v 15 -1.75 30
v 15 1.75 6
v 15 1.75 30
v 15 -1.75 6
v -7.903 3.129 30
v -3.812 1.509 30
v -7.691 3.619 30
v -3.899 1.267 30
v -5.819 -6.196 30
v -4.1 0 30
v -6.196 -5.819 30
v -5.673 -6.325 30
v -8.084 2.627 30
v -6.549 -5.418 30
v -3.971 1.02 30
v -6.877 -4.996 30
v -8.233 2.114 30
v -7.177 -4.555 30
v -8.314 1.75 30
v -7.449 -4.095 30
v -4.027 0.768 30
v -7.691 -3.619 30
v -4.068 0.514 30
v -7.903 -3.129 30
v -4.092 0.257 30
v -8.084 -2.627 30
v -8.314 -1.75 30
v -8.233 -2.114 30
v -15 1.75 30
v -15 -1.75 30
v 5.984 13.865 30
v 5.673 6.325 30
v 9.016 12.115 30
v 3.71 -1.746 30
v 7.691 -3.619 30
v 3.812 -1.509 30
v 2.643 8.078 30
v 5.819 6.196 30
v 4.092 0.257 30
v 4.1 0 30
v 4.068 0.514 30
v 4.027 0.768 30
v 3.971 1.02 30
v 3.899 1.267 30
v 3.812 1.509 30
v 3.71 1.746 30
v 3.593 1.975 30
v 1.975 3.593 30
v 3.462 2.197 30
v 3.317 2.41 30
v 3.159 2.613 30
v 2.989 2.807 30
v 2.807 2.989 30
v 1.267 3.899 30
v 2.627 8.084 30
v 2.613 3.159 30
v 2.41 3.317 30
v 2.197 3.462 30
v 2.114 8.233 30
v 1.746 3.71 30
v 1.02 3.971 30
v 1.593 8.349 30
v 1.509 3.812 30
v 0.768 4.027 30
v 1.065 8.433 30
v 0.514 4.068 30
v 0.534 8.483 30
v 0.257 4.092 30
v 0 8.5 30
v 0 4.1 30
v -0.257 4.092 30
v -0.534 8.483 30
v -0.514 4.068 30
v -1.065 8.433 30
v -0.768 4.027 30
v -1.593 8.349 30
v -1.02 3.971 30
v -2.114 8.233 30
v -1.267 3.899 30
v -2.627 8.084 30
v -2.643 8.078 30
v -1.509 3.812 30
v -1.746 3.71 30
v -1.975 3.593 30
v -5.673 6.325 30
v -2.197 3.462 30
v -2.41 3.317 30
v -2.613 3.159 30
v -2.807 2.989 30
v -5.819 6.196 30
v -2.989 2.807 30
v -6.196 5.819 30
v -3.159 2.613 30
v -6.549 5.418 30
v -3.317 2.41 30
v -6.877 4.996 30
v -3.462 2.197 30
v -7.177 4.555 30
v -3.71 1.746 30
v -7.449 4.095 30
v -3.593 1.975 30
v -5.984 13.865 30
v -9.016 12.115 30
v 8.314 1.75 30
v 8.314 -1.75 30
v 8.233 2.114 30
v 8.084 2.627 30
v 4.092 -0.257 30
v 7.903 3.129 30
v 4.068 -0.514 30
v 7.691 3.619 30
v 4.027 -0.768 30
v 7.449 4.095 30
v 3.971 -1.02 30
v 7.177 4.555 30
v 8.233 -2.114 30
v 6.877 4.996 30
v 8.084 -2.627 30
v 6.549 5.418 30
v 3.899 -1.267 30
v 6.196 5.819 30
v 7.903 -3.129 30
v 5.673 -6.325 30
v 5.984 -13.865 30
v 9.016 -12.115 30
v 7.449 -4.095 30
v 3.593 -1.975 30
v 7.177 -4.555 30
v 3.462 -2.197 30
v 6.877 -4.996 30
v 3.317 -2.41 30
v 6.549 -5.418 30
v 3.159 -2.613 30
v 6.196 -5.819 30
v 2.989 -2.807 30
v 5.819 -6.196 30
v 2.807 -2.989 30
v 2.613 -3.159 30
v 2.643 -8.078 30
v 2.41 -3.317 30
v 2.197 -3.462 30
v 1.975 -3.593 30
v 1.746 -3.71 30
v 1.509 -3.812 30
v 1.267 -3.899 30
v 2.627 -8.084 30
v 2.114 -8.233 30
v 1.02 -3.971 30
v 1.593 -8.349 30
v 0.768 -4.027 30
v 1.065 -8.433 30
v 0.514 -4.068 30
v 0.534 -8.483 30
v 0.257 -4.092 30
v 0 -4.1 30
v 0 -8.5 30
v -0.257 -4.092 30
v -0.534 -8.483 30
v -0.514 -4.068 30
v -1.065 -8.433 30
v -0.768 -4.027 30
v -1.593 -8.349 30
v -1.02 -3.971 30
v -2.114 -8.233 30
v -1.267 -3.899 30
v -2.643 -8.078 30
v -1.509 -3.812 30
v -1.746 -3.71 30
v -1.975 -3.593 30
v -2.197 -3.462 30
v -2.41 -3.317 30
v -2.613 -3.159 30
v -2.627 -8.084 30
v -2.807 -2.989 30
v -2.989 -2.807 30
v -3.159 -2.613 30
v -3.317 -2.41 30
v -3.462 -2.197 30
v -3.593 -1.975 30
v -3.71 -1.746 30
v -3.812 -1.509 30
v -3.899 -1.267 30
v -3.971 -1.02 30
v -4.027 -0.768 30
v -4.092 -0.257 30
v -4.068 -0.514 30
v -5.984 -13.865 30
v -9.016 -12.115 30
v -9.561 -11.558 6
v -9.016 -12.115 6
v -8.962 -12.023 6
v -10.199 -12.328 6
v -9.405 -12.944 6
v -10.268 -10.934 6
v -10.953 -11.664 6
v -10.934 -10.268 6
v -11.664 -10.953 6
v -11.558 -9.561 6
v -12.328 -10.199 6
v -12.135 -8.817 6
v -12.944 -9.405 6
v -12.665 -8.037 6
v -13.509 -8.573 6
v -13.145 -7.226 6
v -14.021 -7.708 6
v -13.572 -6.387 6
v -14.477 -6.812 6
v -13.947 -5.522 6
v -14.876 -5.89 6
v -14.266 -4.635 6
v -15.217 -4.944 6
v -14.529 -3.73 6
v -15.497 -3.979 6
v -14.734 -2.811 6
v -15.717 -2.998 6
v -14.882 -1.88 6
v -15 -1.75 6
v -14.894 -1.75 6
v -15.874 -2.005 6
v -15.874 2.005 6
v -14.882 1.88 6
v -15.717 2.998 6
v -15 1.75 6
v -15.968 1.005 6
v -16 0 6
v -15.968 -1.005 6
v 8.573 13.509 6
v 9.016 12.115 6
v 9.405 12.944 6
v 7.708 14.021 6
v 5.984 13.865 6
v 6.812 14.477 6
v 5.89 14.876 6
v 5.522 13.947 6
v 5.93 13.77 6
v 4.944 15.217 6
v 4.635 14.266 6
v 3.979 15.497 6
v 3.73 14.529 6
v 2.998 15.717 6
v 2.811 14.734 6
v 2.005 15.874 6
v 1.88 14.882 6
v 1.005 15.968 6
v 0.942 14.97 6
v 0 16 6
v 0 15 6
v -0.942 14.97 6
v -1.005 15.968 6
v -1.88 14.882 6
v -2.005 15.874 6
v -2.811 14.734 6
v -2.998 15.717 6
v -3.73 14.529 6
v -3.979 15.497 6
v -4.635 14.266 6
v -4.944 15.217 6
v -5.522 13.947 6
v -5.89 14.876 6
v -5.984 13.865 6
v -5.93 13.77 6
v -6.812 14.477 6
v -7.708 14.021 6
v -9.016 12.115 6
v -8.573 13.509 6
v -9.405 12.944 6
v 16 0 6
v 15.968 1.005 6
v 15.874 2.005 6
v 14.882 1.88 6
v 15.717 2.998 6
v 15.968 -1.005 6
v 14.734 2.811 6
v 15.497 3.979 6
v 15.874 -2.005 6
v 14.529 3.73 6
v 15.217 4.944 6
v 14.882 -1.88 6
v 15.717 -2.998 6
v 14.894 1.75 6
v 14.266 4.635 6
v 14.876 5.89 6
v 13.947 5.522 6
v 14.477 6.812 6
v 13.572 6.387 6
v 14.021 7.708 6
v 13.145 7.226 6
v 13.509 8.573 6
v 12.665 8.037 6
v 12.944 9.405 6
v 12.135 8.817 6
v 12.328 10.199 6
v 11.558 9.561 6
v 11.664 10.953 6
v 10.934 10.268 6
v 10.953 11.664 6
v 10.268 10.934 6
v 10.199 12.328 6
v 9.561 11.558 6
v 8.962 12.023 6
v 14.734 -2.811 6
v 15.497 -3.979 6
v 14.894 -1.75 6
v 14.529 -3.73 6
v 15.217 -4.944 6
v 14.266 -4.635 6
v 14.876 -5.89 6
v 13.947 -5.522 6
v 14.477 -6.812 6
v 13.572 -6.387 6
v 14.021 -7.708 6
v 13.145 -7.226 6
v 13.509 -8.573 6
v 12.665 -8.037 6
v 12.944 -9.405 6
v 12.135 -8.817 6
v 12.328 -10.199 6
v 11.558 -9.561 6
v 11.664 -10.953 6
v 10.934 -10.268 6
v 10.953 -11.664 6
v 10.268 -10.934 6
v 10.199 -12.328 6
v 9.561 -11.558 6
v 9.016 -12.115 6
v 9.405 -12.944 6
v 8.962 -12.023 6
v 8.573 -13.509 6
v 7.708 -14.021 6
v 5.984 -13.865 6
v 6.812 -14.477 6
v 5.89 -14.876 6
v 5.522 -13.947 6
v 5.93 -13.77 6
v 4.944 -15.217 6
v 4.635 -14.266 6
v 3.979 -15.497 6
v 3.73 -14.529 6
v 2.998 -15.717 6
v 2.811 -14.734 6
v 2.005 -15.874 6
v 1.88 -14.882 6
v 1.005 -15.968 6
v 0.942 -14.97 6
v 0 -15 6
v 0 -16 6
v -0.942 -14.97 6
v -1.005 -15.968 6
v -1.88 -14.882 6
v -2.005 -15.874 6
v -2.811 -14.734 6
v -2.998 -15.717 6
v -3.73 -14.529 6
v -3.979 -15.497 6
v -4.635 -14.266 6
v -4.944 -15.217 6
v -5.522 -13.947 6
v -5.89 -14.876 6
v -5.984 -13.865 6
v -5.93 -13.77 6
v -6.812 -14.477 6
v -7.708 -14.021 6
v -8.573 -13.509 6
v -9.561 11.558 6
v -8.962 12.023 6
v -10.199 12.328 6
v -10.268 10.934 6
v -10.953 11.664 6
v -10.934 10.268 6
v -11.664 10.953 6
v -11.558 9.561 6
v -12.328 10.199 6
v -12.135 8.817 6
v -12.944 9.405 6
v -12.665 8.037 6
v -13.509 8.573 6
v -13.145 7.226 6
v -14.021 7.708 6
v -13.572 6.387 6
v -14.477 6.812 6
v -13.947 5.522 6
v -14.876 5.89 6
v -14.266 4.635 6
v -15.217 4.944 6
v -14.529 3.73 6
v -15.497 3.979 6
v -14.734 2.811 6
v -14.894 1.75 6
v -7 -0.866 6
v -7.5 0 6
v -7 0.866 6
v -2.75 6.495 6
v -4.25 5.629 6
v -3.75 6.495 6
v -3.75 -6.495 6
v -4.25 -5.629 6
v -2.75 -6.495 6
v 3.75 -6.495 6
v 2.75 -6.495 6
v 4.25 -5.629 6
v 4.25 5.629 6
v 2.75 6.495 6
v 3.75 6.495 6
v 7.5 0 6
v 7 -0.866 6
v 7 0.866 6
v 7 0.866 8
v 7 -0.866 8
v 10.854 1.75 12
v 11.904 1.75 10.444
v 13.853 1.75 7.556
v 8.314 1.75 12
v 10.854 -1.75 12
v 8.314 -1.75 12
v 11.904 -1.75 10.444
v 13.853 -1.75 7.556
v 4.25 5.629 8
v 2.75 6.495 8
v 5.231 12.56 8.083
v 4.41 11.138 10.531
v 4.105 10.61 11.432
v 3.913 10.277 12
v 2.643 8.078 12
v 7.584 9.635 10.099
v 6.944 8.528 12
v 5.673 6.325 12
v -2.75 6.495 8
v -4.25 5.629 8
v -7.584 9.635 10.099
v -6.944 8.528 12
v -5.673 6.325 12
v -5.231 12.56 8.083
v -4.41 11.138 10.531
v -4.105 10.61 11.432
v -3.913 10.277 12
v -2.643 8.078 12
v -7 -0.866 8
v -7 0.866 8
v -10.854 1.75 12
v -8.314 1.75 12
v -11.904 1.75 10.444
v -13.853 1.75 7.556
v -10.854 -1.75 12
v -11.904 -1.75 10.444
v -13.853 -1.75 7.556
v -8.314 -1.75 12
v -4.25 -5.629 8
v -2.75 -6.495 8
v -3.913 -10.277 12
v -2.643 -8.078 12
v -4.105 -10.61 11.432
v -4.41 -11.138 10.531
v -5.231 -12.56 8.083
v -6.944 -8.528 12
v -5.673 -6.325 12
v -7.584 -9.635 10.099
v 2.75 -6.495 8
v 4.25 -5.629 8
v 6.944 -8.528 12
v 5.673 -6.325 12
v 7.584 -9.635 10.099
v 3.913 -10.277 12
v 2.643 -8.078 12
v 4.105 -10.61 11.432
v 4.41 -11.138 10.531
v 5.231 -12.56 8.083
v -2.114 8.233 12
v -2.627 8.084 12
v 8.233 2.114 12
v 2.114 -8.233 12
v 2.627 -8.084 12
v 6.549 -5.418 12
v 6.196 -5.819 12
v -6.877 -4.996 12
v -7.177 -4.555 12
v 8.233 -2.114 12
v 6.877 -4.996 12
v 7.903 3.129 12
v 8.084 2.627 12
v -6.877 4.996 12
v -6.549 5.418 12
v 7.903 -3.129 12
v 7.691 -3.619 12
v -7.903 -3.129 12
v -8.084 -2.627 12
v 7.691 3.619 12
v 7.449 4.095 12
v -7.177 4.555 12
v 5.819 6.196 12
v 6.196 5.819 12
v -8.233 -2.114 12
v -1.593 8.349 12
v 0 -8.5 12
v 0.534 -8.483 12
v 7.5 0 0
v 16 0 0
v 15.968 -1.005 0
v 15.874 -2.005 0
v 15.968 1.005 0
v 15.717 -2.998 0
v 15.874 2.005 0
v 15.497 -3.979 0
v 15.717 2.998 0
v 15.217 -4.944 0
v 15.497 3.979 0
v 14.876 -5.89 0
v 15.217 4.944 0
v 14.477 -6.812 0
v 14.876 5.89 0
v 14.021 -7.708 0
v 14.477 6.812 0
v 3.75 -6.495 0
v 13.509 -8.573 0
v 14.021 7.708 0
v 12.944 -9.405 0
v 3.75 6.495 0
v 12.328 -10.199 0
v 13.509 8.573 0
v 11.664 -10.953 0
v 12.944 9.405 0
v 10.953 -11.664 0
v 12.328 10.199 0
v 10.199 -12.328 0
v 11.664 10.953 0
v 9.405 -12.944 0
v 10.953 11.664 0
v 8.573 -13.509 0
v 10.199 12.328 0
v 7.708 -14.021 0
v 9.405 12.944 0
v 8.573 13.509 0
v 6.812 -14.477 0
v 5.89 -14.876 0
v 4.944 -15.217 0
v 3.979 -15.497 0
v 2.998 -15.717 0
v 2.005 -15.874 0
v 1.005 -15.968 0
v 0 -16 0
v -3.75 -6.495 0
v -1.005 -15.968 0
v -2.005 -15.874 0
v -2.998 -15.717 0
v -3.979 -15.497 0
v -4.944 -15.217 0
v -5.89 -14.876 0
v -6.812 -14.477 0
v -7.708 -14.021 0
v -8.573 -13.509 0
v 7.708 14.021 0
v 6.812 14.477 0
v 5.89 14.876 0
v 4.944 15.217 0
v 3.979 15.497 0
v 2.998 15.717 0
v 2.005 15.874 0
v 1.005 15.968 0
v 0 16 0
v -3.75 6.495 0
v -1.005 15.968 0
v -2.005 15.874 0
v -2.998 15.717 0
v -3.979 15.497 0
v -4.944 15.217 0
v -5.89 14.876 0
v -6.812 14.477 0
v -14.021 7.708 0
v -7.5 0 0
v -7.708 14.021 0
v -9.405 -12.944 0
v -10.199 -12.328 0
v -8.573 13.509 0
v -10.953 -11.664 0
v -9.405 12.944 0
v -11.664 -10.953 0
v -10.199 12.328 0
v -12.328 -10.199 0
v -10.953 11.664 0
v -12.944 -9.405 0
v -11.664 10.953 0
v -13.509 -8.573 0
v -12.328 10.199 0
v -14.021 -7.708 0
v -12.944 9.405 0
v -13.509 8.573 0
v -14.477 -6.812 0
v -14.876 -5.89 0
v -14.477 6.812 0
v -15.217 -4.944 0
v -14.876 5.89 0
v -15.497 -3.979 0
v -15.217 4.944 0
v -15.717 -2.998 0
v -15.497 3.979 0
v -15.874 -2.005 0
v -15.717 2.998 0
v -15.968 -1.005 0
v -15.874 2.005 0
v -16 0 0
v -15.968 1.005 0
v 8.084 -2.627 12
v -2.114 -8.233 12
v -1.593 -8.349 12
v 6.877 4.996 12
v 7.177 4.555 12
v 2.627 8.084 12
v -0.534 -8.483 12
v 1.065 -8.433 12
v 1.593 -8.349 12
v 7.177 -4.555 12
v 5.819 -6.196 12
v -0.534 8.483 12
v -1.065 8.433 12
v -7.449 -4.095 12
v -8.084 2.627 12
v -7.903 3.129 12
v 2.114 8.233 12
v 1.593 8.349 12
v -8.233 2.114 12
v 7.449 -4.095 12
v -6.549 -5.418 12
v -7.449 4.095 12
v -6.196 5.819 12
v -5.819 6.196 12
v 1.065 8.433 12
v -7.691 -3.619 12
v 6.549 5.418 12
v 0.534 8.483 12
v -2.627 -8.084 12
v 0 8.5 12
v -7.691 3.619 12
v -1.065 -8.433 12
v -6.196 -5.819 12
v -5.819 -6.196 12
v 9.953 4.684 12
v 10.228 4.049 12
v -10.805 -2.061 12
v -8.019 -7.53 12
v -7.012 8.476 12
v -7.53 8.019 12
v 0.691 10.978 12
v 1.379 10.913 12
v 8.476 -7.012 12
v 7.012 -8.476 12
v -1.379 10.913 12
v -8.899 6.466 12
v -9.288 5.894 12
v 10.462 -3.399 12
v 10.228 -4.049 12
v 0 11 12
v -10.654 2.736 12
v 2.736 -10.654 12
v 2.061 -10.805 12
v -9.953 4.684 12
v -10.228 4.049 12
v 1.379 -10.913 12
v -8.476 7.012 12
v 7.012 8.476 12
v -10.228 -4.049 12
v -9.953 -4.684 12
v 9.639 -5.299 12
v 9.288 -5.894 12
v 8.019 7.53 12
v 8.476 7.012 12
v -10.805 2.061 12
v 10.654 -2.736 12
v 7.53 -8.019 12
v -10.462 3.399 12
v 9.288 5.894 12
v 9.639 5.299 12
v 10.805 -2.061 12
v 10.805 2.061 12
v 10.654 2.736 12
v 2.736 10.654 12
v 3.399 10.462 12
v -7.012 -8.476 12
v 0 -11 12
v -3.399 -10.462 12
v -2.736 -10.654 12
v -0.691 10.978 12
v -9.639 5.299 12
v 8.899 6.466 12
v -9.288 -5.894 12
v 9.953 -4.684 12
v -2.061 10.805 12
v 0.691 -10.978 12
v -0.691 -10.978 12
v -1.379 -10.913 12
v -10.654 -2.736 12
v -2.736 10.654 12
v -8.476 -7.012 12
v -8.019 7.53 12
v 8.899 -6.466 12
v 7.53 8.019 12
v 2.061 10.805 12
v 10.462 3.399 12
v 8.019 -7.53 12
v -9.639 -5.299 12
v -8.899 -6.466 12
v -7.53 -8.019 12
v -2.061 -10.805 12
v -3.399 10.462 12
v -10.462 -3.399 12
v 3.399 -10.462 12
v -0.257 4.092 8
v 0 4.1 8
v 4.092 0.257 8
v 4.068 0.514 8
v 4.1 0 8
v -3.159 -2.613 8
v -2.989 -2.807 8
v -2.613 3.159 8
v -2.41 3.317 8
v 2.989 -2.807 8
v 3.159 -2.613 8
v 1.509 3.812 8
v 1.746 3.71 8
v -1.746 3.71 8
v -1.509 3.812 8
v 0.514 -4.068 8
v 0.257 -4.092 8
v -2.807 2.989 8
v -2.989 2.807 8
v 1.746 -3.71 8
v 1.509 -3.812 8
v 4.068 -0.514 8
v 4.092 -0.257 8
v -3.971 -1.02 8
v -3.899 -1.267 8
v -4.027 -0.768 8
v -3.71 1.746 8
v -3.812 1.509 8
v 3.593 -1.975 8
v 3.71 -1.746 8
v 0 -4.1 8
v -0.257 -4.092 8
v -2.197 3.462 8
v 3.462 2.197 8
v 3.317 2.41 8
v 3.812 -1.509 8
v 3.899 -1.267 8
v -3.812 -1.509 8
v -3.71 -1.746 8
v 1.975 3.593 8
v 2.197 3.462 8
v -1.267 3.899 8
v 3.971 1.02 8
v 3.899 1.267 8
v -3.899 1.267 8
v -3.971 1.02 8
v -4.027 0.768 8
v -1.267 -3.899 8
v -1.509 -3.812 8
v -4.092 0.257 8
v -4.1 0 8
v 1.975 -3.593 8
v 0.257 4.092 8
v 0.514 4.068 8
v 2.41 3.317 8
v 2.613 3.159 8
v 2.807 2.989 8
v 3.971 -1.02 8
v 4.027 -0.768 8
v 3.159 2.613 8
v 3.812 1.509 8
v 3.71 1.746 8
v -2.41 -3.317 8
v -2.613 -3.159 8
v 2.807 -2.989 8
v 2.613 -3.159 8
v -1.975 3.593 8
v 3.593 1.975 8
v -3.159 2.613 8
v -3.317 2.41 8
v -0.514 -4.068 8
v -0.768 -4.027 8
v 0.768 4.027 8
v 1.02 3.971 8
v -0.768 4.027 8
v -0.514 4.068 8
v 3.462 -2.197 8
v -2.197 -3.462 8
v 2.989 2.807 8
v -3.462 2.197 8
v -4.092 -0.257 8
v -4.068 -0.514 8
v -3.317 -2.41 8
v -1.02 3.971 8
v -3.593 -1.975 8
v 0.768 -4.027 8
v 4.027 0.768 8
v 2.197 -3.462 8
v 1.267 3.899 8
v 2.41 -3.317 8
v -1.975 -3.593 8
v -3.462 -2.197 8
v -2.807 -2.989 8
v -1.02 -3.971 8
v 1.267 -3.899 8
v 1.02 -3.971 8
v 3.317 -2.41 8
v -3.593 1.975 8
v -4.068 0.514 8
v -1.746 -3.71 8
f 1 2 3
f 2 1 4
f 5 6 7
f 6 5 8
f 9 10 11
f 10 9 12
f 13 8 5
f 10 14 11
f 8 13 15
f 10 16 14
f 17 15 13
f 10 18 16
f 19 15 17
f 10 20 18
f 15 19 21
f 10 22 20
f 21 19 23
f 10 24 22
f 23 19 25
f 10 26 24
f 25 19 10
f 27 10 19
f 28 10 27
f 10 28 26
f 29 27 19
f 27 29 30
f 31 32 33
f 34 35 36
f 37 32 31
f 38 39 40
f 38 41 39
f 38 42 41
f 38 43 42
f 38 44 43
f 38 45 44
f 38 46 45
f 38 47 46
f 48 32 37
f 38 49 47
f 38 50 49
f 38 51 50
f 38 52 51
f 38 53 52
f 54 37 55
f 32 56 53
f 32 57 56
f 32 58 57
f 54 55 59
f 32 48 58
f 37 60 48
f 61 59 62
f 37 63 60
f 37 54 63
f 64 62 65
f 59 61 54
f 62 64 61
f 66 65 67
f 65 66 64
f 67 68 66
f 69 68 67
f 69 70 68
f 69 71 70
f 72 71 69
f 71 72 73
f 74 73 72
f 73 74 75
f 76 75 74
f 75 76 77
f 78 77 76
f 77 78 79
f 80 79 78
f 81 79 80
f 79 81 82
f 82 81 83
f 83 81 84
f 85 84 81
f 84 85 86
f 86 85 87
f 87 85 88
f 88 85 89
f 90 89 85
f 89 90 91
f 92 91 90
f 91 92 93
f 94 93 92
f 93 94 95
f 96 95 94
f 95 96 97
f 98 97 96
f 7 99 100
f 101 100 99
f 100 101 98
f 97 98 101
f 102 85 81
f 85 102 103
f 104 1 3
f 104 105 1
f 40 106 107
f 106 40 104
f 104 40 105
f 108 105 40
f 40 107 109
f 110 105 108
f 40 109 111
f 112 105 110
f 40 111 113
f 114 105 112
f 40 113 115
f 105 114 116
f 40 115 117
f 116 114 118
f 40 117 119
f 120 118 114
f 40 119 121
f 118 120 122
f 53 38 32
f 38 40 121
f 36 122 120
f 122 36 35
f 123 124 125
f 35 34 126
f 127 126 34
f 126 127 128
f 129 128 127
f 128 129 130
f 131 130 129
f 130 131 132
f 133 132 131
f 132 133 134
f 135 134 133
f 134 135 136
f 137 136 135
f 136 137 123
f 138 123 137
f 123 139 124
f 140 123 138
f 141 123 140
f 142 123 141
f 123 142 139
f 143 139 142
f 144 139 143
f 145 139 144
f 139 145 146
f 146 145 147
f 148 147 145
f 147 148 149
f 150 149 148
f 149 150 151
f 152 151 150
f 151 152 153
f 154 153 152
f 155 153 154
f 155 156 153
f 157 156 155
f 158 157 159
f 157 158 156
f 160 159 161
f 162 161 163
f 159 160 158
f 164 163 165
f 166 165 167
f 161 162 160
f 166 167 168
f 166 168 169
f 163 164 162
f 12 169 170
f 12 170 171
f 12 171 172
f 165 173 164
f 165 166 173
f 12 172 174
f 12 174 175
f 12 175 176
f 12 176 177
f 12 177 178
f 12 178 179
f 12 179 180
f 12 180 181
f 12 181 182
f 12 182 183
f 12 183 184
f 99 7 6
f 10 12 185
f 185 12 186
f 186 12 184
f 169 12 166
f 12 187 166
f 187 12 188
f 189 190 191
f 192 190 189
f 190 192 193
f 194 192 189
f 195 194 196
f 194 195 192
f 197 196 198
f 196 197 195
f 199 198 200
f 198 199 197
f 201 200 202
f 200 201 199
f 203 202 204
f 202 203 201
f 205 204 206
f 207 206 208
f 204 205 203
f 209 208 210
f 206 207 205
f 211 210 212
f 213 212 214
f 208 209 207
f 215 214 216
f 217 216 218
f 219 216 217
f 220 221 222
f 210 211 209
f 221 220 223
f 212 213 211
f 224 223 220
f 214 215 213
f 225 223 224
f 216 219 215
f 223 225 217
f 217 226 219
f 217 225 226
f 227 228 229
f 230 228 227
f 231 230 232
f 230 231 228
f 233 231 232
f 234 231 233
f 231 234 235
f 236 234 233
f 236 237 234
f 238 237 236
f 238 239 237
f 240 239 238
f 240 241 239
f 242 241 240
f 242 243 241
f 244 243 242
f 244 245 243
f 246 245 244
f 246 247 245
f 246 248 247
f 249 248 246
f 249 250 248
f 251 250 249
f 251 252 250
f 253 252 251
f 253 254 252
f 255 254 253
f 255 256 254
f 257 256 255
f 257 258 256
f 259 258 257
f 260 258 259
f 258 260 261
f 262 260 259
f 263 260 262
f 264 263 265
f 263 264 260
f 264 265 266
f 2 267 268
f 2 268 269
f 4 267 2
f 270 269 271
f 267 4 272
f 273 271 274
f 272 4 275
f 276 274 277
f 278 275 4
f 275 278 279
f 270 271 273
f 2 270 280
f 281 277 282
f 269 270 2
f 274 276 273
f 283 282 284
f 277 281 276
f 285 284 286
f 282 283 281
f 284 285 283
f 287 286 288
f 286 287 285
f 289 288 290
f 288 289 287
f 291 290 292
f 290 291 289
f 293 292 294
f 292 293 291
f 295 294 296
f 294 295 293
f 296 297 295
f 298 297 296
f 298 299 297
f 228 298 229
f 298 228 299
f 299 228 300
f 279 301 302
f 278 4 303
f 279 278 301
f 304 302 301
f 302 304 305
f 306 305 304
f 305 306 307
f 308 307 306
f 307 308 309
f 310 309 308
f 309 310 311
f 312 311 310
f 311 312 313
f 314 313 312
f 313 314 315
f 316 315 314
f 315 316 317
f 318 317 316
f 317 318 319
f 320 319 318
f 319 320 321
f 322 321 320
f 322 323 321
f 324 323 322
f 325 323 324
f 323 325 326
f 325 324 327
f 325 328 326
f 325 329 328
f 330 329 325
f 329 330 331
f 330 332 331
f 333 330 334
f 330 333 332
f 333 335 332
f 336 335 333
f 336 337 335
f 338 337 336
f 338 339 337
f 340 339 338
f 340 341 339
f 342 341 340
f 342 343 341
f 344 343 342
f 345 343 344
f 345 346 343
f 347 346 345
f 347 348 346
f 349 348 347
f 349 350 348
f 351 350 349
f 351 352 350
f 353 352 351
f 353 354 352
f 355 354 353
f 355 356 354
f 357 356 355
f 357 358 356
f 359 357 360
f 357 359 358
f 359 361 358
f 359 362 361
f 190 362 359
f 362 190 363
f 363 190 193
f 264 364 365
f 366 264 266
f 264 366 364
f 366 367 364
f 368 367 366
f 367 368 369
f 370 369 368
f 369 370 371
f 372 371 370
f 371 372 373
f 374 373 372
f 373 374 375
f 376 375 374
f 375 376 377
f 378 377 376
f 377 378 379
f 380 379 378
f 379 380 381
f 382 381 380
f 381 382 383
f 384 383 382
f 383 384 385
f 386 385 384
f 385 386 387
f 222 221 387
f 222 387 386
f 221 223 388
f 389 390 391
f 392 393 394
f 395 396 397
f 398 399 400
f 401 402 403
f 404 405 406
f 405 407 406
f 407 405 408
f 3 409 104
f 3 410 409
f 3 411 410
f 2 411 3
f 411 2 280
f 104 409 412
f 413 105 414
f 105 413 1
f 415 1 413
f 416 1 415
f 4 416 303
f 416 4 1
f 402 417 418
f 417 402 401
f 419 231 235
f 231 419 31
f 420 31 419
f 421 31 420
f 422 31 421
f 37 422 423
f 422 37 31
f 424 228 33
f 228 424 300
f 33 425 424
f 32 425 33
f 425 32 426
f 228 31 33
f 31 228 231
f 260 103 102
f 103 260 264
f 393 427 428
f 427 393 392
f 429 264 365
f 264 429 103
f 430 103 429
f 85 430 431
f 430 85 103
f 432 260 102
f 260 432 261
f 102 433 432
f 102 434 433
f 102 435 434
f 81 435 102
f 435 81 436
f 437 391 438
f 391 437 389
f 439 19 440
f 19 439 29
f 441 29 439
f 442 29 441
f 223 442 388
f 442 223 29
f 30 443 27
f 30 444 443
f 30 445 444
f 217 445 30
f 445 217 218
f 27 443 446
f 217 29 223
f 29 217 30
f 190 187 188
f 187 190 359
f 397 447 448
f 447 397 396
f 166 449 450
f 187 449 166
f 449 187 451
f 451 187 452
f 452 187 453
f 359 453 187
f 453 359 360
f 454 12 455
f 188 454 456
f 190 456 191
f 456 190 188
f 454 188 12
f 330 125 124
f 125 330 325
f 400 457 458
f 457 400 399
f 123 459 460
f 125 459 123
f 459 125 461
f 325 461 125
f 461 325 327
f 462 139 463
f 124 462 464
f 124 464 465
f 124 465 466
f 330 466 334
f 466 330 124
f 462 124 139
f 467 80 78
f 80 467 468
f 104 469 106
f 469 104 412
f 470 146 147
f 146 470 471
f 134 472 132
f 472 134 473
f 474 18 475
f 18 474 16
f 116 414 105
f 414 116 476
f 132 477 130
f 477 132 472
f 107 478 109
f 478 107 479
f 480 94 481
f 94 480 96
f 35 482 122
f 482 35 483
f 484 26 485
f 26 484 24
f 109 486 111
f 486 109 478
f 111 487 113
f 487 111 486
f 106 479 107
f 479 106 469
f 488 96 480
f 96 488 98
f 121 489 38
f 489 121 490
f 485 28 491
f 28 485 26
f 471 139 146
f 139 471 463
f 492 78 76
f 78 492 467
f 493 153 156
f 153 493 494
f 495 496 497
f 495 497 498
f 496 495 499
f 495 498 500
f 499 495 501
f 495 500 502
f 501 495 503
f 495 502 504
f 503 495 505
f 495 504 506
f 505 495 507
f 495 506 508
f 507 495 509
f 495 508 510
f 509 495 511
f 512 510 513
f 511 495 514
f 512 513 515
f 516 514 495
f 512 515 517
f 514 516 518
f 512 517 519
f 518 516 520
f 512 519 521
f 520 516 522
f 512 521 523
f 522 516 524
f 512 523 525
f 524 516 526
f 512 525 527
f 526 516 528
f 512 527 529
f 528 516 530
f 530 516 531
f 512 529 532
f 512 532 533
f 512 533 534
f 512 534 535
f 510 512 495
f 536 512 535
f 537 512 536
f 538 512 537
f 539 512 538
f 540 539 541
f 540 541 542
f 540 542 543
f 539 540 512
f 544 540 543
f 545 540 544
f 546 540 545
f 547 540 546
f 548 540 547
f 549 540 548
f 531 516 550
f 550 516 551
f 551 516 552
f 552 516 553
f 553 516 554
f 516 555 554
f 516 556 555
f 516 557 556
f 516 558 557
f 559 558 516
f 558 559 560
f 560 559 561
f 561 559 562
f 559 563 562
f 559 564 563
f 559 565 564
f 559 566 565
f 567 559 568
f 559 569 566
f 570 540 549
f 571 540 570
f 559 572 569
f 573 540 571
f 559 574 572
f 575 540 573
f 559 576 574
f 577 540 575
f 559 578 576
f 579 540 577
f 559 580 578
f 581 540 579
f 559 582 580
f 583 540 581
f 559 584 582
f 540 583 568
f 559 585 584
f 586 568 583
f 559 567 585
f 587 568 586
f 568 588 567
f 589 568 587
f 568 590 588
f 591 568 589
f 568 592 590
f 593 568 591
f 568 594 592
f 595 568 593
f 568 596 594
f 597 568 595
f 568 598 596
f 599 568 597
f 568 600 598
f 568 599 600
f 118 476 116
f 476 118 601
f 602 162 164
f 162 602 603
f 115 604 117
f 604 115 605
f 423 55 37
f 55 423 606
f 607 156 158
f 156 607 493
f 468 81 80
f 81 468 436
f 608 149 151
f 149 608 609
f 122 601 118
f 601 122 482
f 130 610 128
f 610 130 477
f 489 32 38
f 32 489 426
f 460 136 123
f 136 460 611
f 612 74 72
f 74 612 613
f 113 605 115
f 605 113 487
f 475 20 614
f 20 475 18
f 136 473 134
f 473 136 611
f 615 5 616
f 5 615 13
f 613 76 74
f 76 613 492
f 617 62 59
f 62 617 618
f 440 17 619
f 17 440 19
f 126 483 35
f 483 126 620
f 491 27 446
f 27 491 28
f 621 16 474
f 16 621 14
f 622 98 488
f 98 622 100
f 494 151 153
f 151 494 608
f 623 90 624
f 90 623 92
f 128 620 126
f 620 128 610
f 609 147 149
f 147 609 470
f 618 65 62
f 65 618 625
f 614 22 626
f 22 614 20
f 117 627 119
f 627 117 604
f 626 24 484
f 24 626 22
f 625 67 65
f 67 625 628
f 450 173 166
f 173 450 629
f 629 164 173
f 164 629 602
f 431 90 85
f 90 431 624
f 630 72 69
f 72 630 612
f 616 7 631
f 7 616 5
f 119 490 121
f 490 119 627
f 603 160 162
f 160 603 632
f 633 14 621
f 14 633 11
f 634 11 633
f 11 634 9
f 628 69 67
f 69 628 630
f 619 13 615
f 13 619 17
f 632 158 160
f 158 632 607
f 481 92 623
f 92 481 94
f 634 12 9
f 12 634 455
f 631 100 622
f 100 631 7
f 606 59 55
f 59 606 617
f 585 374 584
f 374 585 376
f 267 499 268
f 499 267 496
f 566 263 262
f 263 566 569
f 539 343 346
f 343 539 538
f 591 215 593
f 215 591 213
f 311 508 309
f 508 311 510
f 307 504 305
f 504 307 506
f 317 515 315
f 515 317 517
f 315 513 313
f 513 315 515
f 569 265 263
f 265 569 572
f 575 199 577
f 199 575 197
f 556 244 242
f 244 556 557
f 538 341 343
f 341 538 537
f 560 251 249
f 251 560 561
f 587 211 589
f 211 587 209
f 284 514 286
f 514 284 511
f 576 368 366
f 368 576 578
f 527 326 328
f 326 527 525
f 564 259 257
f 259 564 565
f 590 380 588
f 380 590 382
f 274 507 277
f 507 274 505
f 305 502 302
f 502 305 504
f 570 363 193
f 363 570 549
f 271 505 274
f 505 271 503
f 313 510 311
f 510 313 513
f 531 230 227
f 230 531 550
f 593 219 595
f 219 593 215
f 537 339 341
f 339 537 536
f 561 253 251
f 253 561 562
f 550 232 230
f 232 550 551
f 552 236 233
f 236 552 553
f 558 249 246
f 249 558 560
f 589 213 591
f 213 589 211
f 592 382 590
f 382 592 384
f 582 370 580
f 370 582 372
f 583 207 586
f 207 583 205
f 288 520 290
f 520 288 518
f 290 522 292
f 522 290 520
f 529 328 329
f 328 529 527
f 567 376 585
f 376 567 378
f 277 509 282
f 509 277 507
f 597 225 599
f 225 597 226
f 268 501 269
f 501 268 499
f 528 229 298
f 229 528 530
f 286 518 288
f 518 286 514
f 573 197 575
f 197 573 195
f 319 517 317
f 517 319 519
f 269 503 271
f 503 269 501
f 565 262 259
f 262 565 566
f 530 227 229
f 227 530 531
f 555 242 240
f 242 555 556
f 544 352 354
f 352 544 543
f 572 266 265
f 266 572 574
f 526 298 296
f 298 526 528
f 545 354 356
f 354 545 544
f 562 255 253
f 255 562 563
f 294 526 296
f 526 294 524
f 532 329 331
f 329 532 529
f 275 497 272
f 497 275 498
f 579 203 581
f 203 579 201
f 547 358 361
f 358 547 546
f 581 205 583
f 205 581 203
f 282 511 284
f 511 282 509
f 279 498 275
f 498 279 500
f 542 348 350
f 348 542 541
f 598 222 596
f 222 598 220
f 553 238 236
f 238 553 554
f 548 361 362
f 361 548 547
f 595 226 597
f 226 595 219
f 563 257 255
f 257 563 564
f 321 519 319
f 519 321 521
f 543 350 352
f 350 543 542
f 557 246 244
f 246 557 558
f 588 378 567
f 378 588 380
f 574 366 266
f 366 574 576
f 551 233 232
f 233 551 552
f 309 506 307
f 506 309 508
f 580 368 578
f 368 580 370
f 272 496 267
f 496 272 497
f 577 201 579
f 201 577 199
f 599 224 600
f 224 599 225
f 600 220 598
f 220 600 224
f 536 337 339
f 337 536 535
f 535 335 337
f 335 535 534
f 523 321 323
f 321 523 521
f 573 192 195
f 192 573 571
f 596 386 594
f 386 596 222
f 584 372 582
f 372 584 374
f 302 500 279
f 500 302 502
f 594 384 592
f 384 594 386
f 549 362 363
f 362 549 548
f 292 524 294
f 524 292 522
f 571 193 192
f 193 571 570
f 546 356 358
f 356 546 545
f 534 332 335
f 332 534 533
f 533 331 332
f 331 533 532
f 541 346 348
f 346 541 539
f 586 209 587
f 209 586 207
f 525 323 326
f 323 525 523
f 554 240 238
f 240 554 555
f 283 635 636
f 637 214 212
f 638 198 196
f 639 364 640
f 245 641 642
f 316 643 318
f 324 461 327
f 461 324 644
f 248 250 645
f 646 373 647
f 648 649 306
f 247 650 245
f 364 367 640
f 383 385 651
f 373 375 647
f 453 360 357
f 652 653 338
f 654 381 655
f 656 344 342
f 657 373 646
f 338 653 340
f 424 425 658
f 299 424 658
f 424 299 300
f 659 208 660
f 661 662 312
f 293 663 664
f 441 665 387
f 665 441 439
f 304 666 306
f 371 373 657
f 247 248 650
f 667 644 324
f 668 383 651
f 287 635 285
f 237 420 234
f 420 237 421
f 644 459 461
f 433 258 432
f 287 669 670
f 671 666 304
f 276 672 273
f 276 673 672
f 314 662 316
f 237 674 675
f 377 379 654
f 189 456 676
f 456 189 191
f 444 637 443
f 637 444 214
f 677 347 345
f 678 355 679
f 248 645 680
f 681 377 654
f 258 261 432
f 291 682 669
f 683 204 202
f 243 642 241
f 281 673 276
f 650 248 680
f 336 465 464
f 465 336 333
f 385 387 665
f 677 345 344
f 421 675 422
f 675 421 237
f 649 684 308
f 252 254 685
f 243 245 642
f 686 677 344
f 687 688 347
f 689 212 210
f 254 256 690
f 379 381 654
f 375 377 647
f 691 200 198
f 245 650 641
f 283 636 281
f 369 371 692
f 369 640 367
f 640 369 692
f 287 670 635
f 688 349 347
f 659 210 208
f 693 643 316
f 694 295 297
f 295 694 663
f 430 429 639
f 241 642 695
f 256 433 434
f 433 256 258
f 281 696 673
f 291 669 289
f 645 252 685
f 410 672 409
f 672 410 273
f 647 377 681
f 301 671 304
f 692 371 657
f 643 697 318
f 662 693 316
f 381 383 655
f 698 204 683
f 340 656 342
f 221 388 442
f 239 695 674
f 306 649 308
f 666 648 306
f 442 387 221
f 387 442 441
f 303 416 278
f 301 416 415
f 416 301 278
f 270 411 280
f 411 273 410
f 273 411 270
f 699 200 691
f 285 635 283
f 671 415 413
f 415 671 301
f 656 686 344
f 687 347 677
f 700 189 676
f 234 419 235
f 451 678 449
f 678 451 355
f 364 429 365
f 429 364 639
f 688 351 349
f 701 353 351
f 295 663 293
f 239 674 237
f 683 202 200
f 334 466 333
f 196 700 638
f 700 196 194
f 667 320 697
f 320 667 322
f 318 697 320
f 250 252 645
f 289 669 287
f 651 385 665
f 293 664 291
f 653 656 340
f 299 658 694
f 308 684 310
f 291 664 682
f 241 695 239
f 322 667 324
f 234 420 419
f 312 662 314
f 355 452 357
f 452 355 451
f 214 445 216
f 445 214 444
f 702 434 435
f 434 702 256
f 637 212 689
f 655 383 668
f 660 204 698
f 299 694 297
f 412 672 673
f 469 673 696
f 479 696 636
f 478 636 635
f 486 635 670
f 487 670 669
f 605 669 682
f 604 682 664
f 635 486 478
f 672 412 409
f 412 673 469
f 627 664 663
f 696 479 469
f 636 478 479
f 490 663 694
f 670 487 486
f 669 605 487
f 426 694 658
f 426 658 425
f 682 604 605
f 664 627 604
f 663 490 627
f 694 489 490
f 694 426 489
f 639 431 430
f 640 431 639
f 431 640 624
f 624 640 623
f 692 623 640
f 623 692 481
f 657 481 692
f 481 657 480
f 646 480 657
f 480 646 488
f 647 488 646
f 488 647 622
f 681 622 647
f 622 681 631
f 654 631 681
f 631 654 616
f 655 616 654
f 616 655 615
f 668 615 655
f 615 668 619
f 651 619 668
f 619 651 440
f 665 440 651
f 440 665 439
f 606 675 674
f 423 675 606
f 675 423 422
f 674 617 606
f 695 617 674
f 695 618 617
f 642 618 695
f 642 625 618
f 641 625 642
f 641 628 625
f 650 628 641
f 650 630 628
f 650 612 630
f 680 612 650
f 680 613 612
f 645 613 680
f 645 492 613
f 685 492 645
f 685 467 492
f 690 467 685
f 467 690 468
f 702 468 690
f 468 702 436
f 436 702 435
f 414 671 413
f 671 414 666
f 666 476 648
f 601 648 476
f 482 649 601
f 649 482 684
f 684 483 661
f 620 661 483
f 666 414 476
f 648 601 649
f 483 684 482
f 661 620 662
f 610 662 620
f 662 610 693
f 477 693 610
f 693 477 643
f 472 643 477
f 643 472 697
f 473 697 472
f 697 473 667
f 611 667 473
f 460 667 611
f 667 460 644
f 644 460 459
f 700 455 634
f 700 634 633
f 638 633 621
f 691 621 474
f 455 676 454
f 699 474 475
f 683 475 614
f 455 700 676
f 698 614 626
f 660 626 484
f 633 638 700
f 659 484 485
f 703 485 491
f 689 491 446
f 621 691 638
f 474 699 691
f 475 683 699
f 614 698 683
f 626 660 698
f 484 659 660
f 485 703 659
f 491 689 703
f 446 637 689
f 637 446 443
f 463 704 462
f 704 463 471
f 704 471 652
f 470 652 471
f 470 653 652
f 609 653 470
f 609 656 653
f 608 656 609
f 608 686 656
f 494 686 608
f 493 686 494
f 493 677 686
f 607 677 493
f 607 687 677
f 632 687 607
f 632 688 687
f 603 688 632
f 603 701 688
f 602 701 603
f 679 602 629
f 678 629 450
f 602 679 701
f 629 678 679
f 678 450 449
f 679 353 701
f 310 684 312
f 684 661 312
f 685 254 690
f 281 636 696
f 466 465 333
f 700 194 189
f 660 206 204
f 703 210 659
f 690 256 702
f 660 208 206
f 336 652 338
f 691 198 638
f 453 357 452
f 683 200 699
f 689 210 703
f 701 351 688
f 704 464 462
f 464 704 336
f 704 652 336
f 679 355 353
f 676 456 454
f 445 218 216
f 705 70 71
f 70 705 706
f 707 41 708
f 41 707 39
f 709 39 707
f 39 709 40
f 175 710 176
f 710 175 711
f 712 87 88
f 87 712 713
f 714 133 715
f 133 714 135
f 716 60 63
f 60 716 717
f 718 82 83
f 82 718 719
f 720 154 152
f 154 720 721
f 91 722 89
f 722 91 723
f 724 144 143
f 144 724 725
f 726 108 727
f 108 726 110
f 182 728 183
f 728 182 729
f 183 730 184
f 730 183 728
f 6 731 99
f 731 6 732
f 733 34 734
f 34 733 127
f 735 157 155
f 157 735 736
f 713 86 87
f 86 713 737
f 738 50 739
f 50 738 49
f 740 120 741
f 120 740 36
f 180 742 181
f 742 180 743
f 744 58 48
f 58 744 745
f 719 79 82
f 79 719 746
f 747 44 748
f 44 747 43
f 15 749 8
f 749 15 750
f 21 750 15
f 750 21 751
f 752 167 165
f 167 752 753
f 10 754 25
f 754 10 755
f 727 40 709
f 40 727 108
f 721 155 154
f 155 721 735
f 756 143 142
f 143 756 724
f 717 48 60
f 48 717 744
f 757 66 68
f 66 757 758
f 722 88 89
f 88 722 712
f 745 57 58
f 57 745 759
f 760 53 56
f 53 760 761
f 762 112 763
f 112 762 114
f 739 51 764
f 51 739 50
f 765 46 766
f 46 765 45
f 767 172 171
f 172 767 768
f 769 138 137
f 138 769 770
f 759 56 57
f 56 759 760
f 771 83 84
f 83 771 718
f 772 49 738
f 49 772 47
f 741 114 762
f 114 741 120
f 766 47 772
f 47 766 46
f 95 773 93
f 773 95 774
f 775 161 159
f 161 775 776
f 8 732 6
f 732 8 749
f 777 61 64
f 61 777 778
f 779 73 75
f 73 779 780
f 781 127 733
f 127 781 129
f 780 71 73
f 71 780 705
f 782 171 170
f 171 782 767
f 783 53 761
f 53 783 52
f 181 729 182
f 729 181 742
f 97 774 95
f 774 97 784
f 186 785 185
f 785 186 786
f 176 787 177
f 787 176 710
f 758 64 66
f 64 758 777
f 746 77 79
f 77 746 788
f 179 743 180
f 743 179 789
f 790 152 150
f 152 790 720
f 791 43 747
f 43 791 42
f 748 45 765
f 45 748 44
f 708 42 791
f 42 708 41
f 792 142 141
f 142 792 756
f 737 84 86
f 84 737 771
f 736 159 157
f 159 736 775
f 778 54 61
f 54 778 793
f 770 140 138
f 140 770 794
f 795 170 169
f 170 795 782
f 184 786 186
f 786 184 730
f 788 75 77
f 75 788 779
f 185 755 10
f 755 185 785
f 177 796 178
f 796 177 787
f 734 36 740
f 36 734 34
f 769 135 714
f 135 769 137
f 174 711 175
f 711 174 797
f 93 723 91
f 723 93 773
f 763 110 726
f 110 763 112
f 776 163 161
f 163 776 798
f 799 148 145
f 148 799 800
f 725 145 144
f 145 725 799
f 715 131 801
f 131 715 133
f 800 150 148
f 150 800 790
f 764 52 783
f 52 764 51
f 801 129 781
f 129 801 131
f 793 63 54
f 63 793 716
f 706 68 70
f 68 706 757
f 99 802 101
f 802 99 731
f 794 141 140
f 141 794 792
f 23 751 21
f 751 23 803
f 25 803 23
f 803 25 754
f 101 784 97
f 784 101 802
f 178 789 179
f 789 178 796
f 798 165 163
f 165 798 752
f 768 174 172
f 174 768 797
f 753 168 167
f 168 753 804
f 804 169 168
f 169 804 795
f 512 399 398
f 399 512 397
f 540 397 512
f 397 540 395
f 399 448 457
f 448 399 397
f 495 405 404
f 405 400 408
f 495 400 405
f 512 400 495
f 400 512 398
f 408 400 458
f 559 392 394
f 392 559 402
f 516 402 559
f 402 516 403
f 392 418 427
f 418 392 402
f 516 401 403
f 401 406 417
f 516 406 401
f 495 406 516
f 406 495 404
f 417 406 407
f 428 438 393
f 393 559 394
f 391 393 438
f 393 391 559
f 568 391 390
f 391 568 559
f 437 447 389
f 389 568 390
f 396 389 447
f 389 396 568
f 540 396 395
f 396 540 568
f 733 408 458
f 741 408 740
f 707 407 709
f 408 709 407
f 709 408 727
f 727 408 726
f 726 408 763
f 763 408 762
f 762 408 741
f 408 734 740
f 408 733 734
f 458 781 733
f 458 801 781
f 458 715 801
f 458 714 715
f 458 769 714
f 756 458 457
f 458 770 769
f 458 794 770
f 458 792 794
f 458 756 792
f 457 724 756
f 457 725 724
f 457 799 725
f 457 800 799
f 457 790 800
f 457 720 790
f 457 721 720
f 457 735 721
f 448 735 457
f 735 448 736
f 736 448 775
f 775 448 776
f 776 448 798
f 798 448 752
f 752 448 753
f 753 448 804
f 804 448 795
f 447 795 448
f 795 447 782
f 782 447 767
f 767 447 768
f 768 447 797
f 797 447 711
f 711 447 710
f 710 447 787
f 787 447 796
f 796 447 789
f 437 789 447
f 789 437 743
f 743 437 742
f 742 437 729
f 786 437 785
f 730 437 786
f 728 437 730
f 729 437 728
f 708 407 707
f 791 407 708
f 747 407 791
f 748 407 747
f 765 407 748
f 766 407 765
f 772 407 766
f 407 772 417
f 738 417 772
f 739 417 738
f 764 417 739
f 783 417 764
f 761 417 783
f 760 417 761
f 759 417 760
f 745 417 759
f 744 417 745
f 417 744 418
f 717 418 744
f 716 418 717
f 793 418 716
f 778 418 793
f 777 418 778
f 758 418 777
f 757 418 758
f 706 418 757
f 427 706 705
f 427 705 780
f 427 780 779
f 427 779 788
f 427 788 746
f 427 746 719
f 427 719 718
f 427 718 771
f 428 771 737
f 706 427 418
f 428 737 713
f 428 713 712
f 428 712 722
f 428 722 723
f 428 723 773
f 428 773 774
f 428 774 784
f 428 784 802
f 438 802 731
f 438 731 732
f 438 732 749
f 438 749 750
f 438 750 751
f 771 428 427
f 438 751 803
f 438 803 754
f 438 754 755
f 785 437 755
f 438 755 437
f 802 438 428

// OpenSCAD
$fn=100;
totH=30;
baseH=6;
baseW=32;
wingW=3.5;
wingD=8;
centreD=17;

for (i = [0:360/6:360]) {
rotate([0,0,i]) translate([((baseW-2)/2)-wingD,-wingW/2,baseH]) cube([wingD,wingW,totH-baseH]);
}

difference(){
	union(){
		cylinder(h=totH,d=centreD);
		cylinder(h=6,d=32);
		translate([0,0,baseH]) cylinder(h=6,d1=baseW-2,d2=22);
		}
	translate([0,0,-.1]) cylinder(h=totH+.2,d=8.2);
		
	translate([0,0,-.1]) cylinder(h=8.1,d=15,$fn=6);
}
